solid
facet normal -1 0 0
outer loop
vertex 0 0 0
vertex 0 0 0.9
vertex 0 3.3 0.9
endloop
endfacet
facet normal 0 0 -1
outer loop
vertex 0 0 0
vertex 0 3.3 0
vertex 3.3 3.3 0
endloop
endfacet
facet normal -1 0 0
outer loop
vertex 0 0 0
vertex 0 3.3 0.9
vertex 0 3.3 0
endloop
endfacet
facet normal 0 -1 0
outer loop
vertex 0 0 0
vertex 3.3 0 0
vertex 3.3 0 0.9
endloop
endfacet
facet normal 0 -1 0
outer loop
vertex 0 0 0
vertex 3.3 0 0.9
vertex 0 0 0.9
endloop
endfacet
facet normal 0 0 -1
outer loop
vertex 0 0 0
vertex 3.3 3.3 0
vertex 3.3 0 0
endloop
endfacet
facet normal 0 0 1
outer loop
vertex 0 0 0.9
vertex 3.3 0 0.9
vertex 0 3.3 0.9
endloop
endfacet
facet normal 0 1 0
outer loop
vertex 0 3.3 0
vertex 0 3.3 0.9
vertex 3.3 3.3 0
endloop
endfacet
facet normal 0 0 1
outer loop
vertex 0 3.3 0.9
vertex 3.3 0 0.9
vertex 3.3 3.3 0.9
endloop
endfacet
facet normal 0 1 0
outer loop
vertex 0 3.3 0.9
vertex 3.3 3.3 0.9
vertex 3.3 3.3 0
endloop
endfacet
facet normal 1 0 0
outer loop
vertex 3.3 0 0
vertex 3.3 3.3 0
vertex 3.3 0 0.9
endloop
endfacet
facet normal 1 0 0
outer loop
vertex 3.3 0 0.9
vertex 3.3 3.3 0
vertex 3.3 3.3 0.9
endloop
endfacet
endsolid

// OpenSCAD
/* Warning, this is a very basic generator with a lot of approximation 
input data : [PDFN, ESX, 3.3x3.3x0.9mm, 8, , A, C04-00195A]
generated by com.zoubworld.electronics.cad.model3d.Basic
Date : Sun Feb 15 10:50:48 CET 2026
*/

//body
color("black")
translate([0,0,0])
cube([3.3,3.3,0.9], center=false);
